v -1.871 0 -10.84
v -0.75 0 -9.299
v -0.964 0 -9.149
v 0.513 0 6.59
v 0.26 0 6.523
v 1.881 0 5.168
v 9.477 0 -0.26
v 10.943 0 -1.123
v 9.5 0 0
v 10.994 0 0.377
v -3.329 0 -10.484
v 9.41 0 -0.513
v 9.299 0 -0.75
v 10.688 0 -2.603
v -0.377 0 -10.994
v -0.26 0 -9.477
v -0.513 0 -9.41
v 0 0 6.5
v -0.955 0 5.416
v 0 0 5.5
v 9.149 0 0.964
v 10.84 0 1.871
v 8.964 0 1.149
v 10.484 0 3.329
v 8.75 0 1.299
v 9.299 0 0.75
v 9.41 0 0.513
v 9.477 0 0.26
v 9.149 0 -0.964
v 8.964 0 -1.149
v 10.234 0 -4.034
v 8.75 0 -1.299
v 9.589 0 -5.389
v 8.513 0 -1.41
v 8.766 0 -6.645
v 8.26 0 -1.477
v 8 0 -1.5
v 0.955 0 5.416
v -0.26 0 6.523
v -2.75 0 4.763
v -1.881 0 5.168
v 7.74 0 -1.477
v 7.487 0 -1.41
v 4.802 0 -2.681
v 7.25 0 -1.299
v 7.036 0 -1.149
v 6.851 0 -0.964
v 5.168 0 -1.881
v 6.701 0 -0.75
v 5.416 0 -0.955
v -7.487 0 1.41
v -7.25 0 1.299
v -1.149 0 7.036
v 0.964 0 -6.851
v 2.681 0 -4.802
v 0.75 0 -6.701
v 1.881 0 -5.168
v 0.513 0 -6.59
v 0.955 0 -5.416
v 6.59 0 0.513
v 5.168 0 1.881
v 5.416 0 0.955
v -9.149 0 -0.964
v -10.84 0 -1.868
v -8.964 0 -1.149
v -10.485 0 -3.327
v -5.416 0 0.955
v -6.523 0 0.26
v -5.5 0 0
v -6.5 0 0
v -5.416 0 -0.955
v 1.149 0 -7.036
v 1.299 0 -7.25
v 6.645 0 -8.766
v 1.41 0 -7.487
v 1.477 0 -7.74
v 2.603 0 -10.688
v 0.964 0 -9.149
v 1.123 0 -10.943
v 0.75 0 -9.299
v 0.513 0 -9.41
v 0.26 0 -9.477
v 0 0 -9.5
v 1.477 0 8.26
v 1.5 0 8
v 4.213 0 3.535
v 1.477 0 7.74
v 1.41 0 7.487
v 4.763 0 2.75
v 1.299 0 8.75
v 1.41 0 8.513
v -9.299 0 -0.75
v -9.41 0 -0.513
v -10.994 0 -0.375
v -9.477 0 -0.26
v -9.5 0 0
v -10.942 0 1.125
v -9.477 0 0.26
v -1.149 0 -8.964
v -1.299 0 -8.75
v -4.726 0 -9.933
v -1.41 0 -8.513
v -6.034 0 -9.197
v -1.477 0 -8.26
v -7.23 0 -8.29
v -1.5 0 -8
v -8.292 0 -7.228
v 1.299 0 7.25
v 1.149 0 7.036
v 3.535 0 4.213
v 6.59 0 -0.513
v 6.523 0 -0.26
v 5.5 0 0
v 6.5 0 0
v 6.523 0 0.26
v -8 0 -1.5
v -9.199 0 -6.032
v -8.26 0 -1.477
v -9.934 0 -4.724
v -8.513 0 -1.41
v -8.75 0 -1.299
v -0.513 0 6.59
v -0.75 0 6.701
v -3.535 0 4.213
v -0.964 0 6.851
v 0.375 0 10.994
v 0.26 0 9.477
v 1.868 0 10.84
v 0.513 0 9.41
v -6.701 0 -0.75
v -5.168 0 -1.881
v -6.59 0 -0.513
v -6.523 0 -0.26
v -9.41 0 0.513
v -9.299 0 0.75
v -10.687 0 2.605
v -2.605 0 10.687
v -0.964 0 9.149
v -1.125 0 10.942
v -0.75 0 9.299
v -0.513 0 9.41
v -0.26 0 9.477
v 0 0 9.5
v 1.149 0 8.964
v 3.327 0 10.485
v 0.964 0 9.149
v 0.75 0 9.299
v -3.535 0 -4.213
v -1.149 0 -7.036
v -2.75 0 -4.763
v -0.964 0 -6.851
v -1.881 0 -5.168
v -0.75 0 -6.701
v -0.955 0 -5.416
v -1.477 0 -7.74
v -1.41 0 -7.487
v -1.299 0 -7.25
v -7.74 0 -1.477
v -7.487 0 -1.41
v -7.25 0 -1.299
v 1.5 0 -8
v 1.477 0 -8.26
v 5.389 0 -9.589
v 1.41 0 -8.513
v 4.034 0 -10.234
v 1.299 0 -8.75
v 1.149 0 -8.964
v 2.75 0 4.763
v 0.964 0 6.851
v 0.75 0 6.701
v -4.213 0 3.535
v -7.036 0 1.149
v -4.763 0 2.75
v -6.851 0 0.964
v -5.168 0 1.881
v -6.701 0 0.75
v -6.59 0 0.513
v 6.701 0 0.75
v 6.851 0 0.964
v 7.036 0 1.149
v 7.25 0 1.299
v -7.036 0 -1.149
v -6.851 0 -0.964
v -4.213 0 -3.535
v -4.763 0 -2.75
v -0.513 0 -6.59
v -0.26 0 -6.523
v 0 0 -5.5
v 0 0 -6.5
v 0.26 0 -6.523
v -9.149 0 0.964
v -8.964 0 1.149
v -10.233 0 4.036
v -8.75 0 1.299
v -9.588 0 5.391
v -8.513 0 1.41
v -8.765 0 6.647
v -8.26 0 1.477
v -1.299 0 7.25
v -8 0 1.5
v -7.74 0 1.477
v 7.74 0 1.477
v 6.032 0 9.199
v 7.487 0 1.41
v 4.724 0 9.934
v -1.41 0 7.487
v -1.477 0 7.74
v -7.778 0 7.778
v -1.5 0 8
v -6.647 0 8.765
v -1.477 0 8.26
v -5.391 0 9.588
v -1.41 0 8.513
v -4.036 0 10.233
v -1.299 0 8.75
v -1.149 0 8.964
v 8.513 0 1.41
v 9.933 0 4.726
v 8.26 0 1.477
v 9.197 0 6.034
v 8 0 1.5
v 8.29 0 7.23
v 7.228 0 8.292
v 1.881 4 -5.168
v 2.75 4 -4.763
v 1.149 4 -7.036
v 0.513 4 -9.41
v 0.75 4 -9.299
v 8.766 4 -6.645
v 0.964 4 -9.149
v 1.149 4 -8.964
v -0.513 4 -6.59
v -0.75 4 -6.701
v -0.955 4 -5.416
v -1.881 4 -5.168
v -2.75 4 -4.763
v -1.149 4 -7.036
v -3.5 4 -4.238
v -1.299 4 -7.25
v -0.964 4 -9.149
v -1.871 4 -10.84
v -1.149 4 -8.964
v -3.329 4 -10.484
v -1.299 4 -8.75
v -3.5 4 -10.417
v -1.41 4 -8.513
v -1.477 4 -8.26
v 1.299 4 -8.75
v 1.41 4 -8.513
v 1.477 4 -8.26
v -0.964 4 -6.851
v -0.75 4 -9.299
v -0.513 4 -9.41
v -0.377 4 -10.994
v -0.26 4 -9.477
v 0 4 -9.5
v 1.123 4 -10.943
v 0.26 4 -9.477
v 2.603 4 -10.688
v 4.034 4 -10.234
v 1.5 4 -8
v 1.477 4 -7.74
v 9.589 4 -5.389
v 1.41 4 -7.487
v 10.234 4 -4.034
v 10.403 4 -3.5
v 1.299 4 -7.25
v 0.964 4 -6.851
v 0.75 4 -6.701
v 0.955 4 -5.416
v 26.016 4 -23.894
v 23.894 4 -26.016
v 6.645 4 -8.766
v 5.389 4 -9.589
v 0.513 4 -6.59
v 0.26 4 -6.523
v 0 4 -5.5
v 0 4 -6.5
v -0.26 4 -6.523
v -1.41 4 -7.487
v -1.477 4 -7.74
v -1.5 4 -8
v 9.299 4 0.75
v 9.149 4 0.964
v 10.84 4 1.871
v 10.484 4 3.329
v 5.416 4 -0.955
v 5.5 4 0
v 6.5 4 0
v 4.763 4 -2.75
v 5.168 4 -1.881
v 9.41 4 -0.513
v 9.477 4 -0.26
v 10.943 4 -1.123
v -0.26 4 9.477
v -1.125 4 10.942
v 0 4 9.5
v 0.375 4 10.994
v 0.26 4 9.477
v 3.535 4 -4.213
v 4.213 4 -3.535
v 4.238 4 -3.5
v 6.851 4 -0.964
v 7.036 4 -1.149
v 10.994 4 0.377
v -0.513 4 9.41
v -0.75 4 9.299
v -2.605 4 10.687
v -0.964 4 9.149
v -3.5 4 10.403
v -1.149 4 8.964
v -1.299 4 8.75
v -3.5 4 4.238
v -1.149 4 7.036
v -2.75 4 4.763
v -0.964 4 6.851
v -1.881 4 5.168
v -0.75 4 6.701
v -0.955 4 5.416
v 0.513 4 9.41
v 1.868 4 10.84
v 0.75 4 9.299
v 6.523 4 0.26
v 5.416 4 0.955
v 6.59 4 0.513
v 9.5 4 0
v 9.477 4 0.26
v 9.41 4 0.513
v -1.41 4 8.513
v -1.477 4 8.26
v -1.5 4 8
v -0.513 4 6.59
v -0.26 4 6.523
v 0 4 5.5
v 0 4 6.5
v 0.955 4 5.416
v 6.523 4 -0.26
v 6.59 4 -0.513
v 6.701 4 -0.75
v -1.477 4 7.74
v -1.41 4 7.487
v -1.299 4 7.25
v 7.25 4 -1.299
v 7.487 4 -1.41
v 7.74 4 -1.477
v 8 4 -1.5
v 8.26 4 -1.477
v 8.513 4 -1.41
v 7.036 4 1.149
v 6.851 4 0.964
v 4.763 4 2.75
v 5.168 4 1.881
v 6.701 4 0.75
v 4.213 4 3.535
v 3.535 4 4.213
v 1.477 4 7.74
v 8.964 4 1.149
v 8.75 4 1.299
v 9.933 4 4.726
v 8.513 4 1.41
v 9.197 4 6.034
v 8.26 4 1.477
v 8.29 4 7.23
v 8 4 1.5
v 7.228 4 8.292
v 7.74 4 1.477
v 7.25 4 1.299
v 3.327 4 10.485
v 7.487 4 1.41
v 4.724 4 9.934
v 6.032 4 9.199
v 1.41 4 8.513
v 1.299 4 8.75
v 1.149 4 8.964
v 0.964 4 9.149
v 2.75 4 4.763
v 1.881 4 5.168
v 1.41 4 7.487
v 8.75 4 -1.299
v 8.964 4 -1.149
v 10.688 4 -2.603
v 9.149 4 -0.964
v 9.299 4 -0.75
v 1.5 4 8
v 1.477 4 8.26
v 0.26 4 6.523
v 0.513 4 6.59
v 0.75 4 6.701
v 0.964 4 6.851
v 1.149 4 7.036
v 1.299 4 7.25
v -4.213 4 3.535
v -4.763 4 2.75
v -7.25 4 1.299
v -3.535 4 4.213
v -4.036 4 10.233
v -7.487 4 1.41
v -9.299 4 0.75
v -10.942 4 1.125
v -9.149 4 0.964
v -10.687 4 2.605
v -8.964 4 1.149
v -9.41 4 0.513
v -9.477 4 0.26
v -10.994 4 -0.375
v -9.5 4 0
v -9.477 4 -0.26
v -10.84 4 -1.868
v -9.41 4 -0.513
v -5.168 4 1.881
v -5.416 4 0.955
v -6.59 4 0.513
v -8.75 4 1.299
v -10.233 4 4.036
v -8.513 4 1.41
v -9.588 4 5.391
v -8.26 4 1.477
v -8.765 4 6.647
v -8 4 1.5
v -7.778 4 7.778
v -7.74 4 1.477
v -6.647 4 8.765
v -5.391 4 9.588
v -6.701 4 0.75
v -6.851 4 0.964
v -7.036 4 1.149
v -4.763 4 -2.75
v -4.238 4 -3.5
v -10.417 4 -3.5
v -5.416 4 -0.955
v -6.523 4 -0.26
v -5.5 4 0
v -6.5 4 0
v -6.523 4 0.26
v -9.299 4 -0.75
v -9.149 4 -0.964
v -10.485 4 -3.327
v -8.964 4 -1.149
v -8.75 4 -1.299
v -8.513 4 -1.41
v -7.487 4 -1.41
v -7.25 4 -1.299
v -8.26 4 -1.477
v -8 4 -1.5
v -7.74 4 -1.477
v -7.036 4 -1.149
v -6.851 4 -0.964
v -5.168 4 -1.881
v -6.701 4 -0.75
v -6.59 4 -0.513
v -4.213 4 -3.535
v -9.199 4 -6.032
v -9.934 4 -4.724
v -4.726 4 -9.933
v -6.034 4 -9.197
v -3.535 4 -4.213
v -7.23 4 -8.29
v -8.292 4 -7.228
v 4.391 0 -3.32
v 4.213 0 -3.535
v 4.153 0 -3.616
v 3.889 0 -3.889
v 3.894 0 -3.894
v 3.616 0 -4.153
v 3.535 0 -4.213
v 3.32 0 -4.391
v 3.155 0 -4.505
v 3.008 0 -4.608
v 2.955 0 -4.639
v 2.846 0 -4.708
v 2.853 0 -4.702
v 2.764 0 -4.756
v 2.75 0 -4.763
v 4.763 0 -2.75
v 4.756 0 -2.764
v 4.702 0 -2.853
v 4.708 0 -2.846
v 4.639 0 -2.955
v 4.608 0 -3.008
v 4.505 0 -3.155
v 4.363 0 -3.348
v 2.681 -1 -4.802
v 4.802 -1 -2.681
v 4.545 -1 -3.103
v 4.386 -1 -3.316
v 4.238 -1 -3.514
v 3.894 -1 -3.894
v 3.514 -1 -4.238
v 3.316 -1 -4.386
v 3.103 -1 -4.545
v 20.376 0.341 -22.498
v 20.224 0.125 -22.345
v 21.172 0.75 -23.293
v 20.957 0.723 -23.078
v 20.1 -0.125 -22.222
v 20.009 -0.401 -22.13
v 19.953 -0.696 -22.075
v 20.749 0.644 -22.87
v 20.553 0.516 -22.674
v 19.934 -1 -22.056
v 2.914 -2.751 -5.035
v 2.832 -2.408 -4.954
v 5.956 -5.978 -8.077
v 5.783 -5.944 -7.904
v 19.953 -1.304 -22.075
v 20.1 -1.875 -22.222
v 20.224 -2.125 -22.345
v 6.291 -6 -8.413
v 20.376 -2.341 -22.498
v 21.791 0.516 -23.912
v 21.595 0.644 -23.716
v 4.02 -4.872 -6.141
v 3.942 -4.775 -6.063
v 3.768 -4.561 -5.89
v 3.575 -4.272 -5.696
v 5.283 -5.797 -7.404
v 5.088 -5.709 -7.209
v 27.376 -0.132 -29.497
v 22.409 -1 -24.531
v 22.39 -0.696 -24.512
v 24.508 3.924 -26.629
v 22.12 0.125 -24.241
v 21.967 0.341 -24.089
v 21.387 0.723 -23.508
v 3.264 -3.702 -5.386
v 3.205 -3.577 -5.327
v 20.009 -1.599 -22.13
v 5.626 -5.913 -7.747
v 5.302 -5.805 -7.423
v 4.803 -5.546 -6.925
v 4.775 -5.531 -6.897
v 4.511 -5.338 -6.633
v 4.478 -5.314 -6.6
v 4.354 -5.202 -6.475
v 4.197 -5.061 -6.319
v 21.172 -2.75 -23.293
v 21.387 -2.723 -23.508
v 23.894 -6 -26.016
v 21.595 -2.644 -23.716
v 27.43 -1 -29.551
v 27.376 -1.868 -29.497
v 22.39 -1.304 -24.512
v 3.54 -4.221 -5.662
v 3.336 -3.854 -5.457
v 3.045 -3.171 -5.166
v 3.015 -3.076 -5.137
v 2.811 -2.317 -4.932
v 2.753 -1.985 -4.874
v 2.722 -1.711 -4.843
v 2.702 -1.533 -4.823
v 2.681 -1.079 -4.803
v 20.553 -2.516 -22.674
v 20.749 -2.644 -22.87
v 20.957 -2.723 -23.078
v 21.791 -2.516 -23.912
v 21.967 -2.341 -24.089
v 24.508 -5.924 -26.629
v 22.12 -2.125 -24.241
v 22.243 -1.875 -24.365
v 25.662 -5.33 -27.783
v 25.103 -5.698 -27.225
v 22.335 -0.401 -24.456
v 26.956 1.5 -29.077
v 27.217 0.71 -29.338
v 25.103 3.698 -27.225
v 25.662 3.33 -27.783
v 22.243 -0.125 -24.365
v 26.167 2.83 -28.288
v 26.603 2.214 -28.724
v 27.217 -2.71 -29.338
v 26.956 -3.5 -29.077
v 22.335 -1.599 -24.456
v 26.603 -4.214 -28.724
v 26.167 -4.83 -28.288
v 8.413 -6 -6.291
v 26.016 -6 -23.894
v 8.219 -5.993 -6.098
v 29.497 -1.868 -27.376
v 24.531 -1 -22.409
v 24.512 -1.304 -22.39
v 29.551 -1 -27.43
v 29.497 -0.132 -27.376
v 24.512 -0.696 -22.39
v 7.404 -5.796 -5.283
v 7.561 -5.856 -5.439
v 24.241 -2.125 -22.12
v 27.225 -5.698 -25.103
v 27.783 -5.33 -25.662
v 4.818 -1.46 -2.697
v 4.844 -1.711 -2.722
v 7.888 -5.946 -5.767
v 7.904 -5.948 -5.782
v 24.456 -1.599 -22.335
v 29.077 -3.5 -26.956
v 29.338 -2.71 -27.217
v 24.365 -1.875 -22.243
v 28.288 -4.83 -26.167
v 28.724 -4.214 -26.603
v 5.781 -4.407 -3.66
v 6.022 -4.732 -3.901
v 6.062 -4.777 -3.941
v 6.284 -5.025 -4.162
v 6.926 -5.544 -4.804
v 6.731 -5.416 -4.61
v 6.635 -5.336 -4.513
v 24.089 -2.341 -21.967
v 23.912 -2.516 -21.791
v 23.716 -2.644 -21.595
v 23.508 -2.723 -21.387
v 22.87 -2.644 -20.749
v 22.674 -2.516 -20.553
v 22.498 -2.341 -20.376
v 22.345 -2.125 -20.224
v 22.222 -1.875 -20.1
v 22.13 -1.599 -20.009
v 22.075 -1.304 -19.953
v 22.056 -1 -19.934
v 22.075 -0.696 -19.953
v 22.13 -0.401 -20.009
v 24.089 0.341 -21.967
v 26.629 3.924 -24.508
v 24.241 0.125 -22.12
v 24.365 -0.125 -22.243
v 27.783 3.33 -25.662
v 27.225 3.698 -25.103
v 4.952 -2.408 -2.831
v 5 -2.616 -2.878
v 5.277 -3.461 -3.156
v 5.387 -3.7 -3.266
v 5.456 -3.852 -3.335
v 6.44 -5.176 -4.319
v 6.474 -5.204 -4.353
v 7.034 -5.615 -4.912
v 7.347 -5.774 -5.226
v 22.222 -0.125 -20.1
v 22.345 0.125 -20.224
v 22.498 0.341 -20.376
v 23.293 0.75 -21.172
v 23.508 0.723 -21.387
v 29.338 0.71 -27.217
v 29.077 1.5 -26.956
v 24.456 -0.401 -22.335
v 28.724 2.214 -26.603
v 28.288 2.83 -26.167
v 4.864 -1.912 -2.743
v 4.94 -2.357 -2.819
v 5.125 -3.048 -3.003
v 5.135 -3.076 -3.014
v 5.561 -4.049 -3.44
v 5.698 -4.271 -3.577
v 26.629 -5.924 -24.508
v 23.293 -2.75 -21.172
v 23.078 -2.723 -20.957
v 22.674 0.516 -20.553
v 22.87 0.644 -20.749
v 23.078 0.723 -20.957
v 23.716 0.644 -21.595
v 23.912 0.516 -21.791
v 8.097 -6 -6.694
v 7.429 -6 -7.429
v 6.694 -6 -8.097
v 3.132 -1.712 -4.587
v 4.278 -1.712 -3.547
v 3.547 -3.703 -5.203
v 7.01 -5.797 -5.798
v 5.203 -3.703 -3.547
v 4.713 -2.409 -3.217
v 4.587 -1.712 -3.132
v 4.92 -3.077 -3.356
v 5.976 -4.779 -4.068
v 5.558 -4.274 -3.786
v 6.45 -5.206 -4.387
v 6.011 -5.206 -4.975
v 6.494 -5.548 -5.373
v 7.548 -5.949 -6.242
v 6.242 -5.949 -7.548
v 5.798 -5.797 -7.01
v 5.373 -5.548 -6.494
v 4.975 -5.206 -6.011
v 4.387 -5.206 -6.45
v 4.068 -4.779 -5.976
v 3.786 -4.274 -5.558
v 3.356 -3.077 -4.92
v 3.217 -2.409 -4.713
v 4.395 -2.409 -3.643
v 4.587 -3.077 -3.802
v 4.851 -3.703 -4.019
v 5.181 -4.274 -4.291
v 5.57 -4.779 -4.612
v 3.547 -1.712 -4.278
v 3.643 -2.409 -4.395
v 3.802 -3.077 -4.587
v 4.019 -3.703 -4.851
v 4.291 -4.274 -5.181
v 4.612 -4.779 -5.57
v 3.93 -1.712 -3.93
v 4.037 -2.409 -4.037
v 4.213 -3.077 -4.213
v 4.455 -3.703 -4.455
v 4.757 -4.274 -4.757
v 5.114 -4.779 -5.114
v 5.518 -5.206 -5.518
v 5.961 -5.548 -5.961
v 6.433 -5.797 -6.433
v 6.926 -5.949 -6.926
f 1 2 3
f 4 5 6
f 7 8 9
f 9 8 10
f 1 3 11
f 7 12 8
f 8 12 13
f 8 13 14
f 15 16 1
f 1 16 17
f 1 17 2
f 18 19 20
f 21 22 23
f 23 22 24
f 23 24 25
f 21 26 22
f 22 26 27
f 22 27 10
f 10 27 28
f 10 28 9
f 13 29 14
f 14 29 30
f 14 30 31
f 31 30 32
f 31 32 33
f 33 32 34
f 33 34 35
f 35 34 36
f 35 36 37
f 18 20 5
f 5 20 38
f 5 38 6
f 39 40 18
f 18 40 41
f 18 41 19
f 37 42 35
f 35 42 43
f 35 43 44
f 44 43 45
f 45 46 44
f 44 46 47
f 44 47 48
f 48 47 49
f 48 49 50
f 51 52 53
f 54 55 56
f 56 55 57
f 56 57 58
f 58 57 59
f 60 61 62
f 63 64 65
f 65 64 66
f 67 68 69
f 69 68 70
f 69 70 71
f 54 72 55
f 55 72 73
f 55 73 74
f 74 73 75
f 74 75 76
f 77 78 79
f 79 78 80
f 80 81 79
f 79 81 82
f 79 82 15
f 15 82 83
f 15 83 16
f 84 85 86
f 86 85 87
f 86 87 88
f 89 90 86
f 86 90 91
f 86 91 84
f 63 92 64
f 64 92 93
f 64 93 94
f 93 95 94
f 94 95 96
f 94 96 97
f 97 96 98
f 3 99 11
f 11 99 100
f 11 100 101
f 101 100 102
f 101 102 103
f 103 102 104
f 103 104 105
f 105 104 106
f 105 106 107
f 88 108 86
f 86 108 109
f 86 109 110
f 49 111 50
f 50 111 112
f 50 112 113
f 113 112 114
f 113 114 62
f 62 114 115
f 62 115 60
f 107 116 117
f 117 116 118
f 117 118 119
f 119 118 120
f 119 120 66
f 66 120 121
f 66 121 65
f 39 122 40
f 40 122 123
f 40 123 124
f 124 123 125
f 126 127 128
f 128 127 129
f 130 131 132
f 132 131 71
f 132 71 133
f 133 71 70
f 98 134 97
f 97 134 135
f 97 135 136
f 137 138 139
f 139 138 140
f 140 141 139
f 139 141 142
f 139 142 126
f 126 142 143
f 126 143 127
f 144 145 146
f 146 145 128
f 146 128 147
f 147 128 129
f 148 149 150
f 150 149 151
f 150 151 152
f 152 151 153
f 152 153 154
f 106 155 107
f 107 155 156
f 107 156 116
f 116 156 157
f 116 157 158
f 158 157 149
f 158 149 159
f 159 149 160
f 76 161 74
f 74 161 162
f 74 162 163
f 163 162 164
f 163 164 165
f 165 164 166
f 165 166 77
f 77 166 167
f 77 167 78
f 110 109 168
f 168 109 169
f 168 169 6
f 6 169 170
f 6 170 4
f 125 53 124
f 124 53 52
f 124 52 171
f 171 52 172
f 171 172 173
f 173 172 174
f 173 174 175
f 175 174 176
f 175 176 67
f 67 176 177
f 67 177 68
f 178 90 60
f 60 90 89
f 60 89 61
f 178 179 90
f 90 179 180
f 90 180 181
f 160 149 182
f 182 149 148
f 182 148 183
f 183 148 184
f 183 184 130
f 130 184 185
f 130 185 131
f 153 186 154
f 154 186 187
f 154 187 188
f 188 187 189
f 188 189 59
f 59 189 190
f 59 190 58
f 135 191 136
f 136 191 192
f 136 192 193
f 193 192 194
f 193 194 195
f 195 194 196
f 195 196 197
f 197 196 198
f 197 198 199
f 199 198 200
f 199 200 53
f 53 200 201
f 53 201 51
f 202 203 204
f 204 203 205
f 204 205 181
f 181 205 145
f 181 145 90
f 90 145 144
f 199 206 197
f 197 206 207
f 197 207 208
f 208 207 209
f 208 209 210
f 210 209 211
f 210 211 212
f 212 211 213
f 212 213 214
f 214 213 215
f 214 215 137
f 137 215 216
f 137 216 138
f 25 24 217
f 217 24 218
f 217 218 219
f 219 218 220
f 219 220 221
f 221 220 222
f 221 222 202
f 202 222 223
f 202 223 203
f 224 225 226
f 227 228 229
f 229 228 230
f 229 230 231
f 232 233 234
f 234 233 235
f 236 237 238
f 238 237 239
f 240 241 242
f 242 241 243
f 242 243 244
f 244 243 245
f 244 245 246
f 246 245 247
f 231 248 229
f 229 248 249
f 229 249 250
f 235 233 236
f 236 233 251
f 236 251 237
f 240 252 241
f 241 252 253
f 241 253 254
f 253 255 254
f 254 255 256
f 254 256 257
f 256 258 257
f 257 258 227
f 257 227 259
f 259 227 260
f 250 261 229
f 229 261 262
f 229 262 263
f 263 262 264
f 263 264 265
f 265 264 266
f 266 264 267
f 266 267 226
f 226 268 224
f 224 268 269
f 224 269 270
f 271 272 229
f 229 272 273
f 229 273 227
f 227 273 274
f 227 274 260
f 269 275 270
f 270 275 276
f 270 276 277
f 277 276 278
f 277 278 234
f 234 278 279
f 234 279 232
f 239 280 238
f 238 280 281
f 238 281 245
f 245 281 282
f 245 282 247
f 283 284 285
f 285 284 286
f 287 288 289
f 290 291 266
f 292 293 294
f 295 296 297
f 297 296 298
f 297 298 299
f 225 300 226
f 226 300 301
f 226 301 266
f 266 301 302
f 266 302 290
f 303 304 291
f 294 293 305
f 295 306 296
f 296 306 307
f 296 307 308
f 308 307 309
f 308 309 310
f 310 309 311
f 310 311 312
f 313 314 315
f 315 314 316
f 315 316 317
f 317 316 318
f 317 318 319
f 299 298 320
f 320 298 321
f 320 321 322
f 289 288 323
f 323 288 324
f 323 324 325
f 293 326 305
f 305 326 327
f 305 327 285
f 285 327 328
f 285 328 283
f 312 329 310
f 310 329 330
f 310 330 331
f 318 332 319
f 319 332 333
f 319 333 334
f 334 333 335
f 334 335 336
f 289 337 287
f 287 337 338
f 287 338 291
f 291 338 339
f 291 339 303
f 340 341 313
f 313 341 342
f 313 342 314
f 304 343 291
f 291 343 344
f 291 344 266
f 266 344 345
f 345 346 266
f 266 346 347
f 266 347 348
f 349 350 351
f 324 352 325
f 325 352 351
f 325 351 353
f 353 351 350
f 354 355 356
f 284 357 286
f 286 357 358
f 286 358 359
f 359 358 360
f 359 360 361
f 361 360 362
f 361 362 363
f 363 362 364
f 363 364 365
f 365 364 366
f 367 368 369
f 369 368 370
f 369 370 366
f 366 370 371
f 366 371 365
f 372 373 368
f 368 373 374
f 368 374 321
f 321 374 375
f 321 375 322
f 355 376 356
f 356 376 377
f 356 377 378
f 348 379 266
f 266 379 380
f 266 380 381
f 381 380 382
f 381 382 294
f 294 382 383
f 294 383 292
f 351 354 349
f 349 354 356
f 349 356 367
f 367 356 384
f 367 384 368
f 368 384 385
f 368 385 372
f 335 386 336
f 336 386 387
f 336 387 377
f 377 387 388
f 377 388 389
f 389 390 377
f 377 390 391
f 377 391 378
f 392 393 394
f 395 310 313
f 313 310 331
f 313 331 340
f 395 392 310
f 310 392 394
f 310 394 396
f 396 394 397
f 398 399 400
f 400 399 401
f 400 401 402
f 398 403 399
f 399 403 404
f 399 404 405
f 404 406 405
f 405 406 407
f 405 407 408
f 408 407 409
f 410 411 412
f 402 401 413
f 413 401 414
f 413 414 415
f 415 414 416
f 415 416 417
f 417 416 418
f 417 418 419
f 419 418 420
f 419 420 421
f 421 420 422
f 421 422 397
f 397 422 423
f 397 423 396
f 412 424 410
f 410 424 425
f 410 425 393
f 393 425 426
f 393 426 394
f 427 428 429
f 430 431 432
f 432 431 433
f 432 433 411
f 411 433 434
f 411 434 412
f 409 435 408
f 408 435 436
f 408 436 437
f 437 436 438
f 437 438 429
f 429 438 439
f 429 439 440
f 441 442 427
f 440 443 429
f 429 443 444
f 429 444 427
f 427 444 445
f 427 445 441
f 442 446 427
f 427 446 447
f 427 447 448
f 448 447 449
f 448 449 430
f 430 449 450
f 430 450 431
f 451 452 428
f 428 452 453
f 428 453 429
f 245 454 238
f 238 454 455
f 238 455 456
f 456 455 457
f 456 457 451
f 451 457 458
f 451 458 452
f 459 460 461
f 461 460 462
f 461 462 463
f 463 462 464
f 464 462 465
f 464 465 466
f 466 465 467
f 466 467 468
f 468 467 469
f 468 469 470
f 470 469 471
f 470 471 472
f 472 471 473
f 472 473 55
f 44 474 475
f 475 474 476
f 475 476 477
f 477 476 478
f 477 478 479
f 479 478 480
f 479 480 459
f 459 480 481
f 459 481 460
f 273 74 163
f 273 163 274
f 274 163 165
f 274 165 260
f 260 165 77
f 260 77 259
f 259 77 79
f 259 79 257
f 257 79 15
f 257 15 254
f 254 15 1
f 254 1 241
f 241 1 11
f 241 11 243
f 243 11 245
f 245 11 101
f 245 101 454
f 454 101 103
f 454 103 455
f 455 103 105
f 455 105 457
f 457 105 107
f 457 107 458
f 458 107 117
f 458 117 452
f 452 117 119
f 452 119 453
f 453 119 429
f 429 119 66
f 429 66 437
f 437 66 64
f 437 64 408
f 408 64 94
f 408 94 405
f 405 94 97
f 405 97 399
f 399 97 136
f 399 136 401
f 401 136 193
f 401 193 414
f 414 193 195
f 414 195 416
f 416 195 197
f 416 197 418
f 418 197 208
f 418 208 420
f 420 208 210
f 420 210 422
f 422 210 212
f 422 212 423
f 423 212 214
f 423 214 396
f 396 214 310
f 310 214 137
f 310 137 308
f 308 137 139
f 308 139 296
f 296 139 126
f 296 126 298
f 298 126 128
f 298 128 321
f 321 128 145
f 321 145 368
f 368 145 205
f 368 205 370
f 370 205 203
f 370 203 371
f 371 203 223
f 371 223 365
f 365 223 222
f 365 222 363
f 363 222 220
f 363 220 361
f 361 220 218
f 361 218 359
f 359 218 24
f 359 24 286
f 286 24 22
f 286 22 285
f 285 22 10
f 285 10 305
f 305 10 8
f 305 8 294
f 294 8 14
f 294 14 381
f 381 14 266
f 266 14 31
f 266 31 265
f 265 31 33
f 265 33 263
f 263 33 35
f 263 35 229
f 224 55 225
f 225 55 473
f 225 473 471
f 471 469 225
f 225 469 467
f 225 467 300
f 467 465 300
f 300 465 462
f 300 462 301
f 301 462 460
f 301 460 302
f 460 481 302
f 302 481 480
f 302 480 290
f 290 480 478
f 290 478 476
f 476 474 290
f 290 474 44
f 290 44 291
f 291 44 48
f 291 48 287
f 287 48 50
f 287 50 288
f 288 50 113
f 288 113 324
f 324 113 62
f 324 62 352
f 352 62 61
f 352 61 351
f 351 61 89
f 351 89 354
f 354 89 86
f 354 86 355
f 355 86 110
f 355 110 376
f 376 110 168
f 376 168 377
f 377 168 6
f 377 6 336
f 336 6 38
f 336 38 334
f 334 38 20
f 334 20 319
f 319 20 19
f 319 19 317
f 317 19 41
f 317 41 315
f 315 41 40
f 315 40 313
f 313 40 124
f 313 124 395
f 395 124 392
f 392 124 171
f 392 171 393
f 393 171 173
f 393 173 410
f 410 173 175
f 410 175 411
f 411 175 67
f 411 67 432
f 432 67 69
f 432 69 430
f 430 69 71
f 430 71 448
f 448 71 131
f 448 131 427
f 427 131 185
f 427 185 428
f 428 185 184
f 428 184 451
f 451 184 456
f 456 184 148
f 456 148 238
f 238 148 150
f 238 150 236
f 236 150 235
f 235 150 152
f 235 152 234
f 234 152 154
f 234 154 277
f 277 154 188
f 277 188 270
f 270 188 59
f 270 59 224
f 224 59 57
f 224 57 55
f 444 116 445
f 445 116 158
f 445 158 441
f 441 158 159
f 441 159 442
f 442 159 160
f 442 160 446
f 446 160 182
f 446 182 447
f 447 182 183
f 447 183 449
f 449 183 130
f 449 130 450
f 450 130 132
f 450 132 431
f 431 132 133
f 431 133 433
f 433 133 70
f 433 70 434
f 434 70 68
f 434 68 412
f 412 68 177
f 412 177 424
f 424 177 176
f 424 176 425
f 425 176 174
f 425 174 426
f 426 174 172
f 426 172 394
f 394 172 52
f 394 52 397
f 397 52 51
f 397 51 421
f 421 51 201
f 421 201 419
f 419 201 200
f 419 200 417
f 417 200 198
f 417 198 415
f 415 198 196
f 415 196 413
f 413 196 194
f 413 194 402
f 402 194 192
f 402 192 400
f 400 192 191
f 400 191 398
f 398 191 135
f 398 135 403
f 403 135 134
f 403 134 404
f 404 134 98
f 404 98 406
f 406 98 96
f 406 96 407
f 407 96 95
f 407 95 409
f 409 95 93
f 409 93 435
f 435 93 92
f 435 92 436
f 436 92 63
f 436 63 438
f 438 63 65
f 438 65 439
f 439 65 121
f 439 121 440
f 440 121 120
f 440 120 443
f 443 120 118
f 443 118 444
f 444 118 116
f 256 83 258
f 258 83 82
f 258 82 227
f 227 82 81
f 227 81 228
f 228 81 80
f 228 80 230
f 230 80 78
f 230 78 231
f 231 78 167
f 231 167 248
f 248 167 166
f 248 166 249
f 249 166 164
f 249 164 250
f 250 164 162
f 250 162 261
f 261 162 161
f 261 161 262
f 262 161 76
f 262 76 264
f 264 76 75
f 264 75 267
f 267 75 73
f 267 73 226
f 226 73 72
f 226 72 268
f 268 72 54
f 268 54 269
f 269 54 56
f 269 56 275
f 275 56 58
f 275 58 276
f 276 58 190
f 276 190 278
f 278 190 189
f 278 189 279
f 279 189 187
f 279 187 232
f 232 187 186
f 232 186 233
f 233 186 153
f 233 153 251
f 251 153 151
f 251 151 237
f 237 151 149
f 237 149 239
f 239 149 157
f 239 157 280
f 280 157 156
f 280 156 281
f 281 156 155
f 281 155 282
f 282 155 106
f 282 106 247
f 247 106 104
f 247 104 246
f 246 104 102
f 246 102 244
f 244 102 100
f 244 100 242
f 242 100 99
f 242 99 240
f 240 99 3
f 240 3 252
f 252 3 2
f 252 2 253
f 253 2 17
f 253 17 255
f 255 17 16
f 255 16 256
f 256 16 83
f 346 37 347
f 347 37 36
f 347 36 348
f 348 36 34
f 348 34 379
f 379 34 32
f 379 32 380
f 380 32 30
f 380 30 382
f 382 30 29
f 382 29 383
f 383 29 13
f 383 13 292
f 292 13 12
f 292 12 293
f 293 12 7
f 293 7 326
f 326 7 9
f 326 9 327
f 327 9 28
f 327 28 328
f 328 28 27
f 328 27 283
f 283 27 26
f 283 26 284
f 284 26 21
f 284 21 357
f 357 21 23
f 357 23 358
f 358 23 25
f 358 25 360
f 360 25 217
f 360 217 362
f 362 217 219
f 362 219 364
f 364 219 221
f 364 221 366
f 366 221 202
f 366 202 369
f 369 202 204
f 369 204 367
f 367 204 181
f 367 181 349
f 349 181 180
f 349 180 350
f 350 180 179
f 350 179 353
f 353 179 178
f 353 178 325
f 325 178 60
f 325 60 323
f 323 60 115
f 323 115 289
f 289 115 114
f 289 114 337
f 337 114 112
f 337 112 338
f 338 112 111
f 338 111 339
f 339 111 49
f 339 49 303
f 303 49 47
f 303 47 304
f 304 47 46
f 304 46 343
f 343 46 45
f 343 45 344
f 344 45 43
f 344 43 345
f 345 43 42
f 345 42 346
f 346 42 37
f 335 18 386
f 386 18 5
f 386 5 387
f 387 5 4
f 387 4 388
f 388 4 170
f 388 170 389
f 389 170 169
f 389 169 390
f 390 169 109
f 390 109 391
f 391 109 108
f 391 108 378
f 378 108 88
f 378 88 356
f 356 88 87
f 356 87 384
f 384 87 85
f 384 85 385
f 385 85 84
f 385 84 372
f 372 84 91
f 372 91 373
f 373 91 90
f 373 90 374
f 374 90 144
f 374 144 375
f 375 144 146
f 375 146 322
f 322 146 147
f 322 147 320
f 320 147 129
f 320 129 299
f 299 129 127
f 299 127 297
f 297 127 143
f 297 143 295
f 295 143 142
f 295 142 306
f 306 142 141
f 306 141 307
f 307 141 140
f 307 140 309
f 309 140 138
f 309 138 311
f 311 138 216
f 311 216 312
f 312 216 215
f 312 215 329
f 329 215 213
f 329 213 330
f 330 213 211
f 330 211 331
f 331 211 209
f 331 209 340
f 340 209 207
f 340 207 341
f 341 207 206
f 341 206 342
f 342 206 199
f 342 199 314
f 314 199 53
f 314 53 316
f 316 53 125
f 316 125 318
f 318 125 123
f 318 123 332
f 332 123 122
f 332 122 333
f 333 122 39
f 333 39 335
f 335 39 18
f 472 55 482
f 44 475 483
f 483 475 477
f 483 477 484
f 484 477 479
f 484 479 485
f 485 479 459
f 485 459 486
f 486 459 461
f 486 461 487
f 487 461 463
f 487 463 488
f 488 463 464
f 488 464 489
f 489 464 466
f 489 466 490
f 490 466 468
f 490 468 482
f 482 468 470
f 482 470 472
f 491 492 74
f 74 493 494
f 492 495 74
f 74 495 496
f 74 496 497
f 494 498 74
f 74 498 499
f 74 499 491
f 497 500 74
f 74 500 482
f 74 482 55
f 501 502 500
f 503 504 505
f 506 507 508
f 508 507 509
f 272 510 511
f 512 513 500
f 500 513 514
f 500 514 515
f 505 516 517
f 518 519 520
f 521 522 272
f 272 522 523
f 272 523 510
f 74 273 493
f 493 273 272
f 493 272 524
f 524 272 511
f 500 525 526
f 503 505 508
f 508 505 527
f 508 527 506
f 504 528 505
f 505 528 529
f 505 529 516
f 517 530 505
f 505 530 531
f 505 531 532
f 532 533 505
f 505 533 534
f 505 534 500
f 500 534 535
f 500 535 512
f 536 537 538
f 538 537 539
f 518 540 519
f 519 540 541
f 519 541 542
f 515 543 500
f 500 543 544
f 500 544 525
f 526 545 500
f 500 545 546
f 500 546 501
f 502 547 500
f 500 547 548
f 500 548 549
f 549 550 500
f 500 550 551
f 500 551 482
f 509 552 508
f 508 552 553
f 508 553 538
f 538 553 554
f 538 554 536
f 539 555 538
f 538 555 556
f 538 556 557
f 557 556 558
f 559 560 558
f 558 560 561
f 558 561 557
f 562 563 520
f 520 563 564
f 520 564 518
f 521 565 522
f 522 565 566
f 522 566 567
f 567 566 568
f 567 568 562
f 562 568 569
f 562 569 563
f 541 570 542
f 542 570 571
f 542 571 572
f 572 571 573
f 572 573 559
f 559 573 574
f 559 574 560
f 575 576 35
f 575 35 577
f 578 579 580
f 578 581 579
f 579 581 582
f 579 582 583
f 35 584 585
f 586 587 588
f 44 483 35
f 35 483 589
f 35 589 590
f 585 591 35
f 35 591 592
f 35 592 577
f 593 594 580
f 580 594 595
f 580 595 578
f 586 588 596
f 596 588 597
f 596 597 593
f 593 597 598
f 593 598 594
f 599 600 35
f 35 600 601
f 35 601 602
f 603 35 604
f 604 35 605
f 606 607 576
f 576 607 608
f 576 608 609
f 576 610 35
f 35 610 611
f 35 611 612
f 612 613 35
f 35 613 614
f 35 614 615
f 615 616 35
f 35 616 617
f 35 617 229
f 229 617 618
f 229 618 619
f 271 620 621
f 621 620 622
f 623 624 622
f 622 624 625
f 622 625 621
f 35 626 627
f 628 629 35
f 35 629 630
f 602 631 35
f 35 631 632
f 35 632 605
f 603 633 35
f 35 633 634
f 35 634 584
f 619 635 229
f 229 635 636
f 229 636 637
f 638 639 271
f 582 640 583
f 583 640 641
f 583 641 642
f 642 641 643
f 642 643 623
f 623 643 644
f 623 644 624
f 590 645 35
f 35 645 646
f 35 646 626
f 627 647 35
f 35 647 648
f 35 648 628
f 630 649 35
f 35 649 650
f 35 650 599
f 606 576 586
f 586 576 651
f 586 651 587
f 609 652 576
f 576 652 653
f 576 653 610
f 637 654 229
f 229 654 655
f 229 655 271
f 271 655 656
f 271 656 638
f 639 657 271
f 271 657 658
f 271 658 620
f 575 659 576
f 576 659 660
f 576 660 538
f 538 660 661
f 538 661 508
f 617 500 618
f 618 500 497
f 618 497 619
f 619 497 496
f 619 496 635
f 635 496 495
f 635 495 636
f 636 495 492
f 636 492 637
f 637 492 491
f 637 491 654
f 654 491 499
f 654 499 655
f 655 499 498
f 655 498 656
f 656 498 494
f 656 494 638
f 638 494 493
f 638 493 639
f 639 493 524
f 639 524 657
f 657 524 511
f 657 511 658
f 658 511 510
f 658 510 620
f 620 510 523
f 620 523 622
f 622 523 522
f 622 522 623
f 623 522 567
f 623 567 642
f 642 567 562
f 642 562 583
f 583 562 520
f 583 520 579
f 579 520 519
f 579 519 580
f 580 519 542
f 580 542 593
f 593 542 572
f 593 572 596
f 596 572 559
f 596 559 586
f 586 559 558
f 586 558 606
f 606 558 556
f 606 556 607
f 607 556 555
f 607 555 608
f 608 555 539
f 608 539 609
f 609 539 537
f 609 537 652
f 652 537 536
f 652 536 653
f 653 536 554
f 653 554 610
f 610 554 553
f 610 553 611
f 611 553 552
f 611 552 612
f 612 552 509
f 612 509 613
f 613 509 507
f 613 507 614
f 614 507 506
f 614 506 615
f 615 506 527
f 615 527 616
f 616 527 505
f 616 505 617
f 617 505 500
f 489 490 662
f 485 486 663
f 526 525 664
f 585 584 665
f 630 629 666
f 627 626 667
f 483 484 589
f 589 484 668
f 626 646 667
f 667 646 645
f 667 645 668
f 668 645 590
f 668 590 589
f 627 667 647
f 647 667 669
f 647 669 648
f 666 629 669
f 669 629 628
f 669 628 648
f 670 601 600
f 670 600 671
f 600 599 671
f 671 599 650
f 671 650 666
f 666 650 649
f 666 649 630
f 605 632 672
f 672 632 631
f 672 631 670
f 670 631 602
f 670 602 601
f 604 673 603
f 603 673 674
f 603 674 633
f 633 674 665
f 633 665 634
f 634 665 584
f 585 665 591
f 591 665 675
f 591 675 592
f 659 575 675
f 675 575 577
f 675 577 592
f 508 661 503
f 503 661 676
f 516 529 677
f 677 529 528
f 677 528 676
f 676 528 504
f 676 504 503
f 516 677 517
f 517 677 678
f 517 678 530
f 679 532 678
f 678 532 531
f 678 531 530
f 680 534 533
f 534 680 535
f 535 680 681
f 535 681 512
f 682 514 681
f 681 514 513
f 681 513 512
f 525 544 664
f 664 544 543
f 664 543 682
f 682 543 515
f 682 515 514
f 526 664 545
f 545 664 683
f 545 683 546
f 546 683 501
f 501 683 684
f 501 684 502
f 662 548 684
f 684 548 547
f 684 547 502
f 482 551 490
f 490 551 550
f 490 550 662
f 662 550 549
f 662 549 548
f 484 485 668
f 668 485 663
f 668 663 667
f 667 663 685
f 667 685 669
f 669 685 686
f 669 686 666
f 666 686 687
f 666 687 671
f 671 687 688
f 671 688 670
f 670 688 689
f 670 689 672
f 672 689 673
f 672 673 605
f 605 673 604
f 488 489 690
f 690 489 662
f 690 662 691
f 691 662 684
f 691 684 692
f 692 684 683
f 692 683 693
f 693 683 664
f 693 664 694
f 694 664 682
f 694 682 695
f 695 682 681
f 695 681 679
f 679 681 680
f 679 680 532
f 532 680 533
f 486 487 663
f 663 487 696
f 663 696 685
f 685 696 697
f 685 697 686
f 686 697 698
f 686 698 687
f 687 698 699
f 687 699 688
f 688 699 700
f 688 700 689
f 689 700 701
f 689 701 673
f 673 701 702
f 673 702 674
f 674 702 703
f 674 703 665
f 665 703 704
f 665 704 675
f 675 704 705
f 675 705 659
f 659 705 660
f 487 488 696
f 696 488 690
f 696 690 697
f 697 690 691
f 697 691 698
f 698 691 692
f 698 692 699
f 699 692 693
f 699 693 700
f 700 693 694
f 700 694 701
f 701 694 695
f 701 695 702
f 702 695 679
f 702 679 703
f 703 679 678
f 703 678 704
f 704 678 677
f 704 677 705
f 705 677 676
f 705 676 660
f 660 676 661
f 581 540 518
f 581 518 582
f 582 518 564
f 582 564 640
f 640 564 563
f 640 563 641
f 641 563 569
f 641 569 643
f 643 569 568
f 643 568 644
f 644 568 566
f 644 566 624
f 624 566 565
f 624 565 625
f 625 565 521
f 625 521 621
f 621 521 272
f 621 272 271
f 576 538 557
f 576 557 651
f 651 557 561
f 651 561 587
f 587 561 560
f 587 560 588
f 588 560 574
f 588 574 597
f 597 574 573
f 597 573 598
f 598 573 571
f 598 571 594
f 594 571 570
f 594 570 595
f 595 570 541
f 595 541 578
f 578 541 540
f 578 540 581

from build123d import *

# Parameters (mm, degrees)
CROQUIS1_R              = 11
CROQUIS1_R_2            = 5.5
CROQUIS1_R_3            = 1.5
SALIENTE_EXTRUIR1_DEPTH = 4
SALIENTE_EXTRUIR2_DEPTH = 10
CORTAR_EXTRUIR1_REACH   = 44.247
CROQUIS3_R              = 1.75
REDONDEO1_R             = 5


with BuildPart() as part:
    # Croquis1 → Saliente-Extruir1 (new body)
    with BuildSketch(Plane(origin=(0, 0, 0), x_dir=(1, 0, 0), z_dir=(0, 1, 0))):
        with Locations(Location((0, 0, 0), (0, 0, 270))):
            Circle(CROQUIS1_R)
        with Locations(Location((0, 0, 0), (0, 0, 270))):
            Circle(CROQUIS1_R_2, mode=Mode.SUBTRACT)
        with Locations(Location((-8, 0, 0), (0, 0, 270))):
            Circle(CROQUIS1_R_3, mode=Mode.SUBTRACT)
        with Locations(Location((0, 8, 0), (0, 0, 270))):
            Circle(CROQUIS1_R_3, mode=Mode.SUBTRACT)
        with Locations(Location((8, 0, 0), (0, 0, 270))):
            Circle(CROQUIS1_R_3, mode=Mode.SUBTRACT)
        with Locations(Location((0, -8, 0), (0, 0, 270))):
            Circle(CROQUIS1_R_3, mode=Mode.SUBTRACT)
    extrude(amount=SALIENTE_EXTRUIR1_DEPTH)

    # Croquis2 → Saliente-Extruir2 (add)
    with BuildSketch(Plane(origin=(0, 4, 0), x_dir=(1, 0, 0), z_dir=(0, 1, 0))):
        with BuildLine():
            Line((2.680997215, 4.802317559), (27.429734557, 29.5510549))
            Line((27.429734557, 29.5510549), (29.5510549, 27.429734557))
            Line((29.5510549, 27.429734557), (4.802317559, 2.680997215))
            ThreePointArc((4.802317559, 2.680997215), (3.893730418, 3.893730418), (2.680997215, 4.802317559))
        make_face()
    extrude(amount=-SALIENTE_EXTRUIR2_DEPTH)

    # Croquis3 → Cortar-Extruir1 (cut, up to next)
    with BuildSketch(Plane(origin=(-1.060660172, 0, -1.060660172), x_dir=(-0.7071067811865465, 0, 0.7071067811865486), z_dir=(-0.7071067811865486, 0, -0.7071067811865465)), mode=Mode.PRIVATE) as cortar_extruir1_sk1:
        with Locations((-31.441502622, -1)):
            Circle(CROQUIS3_R)
    cortar_extruir1_tool1 = extrude(cortar_extruir1_sk1.sketch, amount=-CORTAR_EXTRUIR1_REACH, mode=Mode.PRIVATE) & part.part
    add(cortar_extruir1_tool1.solids().sort_by_distance((21.17184, -1, -23.29316))[0], mode=Mode.SUBTRACT)

    # Redondeo1
    redondeo1_edges = [part.edges().sort_by_distance(p)[0] for p in [
        (3.893730418, -6, -3.893730418),
        (28.490394728, -6, -28.490394728),
        (28.490394728, 4, -28.490394728),
    ]]
    fillet(redondeo1_edges, radius=REDONDEO1_R - 0.0001)  # a hair under: the kernel refuses the full size


solid = part.part
